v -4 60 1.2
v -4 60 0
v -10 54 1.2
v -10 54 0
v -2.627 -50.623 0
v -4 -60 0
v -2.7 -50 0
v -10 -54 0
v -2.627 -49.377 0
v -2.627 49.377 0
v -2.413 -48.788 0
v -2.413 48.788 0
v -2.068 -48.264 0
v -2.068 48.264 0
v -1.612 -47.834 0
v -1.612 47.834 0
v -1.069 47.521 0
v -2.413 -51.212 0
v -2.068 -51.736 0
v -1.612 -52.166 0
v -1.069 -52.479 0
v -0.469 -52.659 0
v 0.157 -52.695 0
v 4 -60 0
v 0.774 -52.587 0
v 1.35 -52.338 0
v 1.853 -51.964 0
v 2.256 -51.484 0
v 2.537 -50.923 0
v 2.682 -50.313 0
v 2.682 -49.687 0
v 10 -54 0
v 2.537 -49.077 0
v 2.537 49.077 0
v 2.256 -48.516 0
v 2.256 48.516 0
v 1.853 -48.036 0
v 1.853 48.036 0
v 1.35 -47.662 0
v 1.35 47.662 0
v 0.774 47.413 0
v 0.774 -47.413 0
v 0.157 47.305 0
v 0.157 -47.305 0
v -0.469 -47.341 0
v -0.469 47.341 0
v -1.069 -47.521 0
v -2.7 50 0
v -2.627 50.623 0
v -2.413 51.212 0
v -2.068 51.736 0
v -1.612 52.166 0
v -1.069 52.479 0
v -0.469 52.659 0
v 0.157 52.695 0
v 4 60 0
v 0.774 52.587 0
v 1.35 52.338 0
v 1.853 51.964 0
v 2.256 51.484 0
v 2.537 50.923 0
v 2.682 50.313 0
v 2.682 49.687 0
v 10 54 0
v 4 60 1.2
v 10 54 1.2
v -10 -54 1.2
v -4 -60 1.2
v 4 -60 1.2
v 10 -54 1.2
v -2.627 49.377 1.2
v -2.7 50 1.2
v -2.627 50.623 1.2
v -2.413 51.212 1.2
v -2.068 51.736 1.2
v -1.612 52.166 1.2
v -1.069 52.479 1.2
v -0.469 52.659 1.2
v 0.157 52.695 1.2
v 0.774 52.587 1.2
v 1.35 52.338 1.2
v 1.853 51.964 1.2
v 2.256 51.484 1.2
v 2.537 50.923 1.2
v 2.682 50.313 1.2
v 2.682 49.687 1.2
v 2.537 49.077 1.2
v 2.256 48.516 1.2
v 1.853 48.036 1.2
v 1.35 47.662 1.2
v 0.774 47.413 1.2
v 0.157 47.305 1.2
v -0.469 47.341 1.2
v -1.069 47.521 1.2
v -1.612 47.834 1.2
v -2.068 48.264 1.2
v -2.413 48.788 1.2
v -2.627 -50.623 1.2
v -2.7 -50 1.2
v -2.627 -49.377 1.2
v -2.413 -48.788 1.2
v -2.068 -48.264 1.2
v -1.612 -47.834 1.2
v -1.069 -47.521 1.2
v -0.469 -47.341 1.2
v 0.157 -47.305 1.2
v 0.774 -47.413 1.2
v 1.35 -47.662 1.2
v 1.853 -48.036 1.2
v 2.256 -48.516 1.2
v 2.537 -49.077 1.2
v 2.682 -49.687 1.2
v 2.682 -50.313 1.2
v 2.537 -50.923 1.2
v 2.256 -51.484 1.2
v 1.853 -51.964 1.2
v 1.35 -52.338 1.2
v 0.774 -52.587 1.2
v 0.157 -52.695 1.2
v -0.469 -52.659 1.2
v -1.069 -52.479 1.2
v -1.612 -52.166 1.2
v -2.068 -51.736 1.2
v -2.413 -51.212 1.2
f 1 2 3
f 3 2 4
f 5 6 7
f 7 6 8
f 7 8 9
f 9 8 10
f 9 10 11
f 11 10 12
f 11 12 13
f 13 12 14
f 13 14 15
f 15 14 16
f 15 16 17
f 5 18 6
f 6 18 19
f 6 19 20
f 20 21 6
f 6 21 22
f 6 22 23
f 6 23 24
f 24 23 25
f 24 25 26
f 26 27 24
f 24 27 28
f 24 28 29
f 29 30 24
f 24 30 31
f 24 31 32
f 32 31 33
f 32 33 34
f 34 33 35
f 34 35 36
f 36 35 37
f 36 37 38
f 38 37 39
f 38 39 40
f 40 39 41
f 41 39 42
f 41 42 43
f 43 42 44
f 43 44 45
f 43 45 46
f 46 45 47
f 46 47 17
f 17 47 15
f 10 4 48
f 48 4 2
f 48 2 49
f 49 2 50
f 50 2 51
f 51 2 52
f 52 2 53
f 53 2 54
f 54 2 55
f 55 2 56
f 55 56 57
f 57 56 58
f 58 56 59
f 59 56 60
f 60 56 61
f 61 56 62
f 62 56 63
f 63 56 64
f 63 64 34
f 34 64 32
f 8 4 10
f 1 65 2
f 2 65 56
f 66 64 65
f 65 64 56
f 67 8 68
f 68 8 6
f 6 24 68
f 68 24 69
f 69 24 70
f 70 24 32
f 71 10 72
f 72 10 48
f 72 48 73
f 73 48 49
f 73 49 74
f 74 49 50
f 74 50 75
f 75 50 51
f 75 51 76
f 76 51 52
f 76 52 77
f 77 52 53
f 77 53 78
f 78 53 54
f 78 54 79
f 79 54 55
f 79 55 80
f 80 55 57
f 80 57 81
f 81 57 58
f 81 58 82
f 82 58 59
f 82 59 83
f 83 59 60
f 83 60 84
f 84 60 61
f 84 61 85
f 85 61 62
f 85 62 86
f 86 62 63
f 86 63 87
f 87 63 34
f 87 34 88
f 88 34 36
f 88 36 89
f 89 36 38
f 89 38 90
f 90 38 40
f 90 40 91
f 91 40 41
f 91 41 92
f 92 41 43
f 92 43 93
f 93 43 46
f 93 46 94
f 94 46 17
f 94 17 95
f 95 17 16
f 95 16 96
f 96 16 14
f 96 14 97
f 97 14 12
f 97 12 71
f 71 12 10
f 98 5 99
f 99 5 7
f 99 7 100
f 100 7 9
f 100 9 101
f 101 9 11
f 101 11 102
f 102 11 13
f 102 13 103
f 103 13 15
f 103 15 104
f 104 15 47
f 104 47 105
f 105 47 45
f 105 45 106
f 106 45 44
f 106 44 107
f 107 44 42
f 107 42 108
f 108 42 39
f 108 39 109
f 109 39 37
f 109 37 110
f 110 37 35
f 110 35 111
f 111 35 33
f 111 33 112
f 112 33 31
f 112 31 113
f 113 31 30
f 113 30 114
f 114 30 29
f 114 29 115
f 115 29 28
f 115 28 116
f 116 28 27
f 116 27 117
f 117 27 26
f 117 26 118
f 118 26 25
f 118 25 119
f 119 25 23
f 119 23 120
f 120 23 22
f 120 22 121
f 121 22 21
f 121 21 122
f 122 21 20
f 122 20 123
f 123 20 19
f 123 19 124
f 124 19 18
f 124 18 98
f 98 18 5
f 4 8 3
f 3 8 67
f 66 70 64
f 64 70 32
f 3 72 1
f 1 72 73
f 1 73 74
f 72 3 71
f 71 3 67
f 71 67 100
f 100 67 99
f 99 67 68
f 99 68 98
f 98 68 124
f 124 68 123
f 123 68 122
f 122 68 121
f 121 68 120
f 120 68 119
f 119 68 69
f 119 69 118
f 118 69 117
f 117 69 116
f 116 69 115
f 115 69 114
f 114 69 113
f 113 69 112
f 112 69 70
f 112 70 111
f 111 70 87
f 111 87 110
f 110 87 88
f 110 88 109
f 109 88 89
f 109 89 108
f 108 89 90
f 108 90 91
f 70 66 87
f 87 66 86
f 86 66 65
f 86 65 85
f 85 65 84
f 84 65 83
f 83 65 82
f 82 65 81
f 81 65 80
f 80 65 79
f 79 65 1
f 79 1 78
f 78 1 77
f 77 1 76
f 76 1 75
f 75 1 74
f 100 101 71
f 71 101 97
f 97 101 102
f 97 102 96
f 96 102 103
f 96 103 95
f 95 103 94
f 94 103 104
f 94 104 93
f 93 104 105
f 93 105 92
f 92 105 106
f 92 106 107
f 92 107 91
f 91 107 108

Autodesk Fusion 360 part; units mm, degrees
sketch "Sketch1" plane through (0, 0, 0) normal (0, 0, 1) x (1, 0, 0)
  line L0 (-10, 60) -> (10, 60)
  line L1 (10, 60) -> (10, -60)
  line L2 (10, -60) -> (-10, -60)
  line L3 (-10, -60) -> (-10, 60)
  line L4 (-10, 60) -> (10, -60) construction
  line L5 (10, 60) -> (-10, -60) construction
  circle A0 centre (0, -50) radius 2.7
  line L6 (0, -50) -> (-10, -50) construction
  line L7 (0, -50) -> (0, -60) construction
  line L8 (90, 0) -> (-64.2965, 0) construction
  circle A1 centre (0, 50) radius 2.7
  dimension "d1" = 120
  dimension "d2" = 20
  dimension "d3" = 5.4
extrude "Extrude1" add sketch "Sketch1" along normal blind 1.2
chamfer "Chamfer1" distance 6 angle 45 2 edges at (10, -60, 0.6) (-10, -60, 0.6)
chamfer "Chamfer1" distance 6 angle 45 2 edges at (10, 60, 0.6) (-10, 60, 0.6)
